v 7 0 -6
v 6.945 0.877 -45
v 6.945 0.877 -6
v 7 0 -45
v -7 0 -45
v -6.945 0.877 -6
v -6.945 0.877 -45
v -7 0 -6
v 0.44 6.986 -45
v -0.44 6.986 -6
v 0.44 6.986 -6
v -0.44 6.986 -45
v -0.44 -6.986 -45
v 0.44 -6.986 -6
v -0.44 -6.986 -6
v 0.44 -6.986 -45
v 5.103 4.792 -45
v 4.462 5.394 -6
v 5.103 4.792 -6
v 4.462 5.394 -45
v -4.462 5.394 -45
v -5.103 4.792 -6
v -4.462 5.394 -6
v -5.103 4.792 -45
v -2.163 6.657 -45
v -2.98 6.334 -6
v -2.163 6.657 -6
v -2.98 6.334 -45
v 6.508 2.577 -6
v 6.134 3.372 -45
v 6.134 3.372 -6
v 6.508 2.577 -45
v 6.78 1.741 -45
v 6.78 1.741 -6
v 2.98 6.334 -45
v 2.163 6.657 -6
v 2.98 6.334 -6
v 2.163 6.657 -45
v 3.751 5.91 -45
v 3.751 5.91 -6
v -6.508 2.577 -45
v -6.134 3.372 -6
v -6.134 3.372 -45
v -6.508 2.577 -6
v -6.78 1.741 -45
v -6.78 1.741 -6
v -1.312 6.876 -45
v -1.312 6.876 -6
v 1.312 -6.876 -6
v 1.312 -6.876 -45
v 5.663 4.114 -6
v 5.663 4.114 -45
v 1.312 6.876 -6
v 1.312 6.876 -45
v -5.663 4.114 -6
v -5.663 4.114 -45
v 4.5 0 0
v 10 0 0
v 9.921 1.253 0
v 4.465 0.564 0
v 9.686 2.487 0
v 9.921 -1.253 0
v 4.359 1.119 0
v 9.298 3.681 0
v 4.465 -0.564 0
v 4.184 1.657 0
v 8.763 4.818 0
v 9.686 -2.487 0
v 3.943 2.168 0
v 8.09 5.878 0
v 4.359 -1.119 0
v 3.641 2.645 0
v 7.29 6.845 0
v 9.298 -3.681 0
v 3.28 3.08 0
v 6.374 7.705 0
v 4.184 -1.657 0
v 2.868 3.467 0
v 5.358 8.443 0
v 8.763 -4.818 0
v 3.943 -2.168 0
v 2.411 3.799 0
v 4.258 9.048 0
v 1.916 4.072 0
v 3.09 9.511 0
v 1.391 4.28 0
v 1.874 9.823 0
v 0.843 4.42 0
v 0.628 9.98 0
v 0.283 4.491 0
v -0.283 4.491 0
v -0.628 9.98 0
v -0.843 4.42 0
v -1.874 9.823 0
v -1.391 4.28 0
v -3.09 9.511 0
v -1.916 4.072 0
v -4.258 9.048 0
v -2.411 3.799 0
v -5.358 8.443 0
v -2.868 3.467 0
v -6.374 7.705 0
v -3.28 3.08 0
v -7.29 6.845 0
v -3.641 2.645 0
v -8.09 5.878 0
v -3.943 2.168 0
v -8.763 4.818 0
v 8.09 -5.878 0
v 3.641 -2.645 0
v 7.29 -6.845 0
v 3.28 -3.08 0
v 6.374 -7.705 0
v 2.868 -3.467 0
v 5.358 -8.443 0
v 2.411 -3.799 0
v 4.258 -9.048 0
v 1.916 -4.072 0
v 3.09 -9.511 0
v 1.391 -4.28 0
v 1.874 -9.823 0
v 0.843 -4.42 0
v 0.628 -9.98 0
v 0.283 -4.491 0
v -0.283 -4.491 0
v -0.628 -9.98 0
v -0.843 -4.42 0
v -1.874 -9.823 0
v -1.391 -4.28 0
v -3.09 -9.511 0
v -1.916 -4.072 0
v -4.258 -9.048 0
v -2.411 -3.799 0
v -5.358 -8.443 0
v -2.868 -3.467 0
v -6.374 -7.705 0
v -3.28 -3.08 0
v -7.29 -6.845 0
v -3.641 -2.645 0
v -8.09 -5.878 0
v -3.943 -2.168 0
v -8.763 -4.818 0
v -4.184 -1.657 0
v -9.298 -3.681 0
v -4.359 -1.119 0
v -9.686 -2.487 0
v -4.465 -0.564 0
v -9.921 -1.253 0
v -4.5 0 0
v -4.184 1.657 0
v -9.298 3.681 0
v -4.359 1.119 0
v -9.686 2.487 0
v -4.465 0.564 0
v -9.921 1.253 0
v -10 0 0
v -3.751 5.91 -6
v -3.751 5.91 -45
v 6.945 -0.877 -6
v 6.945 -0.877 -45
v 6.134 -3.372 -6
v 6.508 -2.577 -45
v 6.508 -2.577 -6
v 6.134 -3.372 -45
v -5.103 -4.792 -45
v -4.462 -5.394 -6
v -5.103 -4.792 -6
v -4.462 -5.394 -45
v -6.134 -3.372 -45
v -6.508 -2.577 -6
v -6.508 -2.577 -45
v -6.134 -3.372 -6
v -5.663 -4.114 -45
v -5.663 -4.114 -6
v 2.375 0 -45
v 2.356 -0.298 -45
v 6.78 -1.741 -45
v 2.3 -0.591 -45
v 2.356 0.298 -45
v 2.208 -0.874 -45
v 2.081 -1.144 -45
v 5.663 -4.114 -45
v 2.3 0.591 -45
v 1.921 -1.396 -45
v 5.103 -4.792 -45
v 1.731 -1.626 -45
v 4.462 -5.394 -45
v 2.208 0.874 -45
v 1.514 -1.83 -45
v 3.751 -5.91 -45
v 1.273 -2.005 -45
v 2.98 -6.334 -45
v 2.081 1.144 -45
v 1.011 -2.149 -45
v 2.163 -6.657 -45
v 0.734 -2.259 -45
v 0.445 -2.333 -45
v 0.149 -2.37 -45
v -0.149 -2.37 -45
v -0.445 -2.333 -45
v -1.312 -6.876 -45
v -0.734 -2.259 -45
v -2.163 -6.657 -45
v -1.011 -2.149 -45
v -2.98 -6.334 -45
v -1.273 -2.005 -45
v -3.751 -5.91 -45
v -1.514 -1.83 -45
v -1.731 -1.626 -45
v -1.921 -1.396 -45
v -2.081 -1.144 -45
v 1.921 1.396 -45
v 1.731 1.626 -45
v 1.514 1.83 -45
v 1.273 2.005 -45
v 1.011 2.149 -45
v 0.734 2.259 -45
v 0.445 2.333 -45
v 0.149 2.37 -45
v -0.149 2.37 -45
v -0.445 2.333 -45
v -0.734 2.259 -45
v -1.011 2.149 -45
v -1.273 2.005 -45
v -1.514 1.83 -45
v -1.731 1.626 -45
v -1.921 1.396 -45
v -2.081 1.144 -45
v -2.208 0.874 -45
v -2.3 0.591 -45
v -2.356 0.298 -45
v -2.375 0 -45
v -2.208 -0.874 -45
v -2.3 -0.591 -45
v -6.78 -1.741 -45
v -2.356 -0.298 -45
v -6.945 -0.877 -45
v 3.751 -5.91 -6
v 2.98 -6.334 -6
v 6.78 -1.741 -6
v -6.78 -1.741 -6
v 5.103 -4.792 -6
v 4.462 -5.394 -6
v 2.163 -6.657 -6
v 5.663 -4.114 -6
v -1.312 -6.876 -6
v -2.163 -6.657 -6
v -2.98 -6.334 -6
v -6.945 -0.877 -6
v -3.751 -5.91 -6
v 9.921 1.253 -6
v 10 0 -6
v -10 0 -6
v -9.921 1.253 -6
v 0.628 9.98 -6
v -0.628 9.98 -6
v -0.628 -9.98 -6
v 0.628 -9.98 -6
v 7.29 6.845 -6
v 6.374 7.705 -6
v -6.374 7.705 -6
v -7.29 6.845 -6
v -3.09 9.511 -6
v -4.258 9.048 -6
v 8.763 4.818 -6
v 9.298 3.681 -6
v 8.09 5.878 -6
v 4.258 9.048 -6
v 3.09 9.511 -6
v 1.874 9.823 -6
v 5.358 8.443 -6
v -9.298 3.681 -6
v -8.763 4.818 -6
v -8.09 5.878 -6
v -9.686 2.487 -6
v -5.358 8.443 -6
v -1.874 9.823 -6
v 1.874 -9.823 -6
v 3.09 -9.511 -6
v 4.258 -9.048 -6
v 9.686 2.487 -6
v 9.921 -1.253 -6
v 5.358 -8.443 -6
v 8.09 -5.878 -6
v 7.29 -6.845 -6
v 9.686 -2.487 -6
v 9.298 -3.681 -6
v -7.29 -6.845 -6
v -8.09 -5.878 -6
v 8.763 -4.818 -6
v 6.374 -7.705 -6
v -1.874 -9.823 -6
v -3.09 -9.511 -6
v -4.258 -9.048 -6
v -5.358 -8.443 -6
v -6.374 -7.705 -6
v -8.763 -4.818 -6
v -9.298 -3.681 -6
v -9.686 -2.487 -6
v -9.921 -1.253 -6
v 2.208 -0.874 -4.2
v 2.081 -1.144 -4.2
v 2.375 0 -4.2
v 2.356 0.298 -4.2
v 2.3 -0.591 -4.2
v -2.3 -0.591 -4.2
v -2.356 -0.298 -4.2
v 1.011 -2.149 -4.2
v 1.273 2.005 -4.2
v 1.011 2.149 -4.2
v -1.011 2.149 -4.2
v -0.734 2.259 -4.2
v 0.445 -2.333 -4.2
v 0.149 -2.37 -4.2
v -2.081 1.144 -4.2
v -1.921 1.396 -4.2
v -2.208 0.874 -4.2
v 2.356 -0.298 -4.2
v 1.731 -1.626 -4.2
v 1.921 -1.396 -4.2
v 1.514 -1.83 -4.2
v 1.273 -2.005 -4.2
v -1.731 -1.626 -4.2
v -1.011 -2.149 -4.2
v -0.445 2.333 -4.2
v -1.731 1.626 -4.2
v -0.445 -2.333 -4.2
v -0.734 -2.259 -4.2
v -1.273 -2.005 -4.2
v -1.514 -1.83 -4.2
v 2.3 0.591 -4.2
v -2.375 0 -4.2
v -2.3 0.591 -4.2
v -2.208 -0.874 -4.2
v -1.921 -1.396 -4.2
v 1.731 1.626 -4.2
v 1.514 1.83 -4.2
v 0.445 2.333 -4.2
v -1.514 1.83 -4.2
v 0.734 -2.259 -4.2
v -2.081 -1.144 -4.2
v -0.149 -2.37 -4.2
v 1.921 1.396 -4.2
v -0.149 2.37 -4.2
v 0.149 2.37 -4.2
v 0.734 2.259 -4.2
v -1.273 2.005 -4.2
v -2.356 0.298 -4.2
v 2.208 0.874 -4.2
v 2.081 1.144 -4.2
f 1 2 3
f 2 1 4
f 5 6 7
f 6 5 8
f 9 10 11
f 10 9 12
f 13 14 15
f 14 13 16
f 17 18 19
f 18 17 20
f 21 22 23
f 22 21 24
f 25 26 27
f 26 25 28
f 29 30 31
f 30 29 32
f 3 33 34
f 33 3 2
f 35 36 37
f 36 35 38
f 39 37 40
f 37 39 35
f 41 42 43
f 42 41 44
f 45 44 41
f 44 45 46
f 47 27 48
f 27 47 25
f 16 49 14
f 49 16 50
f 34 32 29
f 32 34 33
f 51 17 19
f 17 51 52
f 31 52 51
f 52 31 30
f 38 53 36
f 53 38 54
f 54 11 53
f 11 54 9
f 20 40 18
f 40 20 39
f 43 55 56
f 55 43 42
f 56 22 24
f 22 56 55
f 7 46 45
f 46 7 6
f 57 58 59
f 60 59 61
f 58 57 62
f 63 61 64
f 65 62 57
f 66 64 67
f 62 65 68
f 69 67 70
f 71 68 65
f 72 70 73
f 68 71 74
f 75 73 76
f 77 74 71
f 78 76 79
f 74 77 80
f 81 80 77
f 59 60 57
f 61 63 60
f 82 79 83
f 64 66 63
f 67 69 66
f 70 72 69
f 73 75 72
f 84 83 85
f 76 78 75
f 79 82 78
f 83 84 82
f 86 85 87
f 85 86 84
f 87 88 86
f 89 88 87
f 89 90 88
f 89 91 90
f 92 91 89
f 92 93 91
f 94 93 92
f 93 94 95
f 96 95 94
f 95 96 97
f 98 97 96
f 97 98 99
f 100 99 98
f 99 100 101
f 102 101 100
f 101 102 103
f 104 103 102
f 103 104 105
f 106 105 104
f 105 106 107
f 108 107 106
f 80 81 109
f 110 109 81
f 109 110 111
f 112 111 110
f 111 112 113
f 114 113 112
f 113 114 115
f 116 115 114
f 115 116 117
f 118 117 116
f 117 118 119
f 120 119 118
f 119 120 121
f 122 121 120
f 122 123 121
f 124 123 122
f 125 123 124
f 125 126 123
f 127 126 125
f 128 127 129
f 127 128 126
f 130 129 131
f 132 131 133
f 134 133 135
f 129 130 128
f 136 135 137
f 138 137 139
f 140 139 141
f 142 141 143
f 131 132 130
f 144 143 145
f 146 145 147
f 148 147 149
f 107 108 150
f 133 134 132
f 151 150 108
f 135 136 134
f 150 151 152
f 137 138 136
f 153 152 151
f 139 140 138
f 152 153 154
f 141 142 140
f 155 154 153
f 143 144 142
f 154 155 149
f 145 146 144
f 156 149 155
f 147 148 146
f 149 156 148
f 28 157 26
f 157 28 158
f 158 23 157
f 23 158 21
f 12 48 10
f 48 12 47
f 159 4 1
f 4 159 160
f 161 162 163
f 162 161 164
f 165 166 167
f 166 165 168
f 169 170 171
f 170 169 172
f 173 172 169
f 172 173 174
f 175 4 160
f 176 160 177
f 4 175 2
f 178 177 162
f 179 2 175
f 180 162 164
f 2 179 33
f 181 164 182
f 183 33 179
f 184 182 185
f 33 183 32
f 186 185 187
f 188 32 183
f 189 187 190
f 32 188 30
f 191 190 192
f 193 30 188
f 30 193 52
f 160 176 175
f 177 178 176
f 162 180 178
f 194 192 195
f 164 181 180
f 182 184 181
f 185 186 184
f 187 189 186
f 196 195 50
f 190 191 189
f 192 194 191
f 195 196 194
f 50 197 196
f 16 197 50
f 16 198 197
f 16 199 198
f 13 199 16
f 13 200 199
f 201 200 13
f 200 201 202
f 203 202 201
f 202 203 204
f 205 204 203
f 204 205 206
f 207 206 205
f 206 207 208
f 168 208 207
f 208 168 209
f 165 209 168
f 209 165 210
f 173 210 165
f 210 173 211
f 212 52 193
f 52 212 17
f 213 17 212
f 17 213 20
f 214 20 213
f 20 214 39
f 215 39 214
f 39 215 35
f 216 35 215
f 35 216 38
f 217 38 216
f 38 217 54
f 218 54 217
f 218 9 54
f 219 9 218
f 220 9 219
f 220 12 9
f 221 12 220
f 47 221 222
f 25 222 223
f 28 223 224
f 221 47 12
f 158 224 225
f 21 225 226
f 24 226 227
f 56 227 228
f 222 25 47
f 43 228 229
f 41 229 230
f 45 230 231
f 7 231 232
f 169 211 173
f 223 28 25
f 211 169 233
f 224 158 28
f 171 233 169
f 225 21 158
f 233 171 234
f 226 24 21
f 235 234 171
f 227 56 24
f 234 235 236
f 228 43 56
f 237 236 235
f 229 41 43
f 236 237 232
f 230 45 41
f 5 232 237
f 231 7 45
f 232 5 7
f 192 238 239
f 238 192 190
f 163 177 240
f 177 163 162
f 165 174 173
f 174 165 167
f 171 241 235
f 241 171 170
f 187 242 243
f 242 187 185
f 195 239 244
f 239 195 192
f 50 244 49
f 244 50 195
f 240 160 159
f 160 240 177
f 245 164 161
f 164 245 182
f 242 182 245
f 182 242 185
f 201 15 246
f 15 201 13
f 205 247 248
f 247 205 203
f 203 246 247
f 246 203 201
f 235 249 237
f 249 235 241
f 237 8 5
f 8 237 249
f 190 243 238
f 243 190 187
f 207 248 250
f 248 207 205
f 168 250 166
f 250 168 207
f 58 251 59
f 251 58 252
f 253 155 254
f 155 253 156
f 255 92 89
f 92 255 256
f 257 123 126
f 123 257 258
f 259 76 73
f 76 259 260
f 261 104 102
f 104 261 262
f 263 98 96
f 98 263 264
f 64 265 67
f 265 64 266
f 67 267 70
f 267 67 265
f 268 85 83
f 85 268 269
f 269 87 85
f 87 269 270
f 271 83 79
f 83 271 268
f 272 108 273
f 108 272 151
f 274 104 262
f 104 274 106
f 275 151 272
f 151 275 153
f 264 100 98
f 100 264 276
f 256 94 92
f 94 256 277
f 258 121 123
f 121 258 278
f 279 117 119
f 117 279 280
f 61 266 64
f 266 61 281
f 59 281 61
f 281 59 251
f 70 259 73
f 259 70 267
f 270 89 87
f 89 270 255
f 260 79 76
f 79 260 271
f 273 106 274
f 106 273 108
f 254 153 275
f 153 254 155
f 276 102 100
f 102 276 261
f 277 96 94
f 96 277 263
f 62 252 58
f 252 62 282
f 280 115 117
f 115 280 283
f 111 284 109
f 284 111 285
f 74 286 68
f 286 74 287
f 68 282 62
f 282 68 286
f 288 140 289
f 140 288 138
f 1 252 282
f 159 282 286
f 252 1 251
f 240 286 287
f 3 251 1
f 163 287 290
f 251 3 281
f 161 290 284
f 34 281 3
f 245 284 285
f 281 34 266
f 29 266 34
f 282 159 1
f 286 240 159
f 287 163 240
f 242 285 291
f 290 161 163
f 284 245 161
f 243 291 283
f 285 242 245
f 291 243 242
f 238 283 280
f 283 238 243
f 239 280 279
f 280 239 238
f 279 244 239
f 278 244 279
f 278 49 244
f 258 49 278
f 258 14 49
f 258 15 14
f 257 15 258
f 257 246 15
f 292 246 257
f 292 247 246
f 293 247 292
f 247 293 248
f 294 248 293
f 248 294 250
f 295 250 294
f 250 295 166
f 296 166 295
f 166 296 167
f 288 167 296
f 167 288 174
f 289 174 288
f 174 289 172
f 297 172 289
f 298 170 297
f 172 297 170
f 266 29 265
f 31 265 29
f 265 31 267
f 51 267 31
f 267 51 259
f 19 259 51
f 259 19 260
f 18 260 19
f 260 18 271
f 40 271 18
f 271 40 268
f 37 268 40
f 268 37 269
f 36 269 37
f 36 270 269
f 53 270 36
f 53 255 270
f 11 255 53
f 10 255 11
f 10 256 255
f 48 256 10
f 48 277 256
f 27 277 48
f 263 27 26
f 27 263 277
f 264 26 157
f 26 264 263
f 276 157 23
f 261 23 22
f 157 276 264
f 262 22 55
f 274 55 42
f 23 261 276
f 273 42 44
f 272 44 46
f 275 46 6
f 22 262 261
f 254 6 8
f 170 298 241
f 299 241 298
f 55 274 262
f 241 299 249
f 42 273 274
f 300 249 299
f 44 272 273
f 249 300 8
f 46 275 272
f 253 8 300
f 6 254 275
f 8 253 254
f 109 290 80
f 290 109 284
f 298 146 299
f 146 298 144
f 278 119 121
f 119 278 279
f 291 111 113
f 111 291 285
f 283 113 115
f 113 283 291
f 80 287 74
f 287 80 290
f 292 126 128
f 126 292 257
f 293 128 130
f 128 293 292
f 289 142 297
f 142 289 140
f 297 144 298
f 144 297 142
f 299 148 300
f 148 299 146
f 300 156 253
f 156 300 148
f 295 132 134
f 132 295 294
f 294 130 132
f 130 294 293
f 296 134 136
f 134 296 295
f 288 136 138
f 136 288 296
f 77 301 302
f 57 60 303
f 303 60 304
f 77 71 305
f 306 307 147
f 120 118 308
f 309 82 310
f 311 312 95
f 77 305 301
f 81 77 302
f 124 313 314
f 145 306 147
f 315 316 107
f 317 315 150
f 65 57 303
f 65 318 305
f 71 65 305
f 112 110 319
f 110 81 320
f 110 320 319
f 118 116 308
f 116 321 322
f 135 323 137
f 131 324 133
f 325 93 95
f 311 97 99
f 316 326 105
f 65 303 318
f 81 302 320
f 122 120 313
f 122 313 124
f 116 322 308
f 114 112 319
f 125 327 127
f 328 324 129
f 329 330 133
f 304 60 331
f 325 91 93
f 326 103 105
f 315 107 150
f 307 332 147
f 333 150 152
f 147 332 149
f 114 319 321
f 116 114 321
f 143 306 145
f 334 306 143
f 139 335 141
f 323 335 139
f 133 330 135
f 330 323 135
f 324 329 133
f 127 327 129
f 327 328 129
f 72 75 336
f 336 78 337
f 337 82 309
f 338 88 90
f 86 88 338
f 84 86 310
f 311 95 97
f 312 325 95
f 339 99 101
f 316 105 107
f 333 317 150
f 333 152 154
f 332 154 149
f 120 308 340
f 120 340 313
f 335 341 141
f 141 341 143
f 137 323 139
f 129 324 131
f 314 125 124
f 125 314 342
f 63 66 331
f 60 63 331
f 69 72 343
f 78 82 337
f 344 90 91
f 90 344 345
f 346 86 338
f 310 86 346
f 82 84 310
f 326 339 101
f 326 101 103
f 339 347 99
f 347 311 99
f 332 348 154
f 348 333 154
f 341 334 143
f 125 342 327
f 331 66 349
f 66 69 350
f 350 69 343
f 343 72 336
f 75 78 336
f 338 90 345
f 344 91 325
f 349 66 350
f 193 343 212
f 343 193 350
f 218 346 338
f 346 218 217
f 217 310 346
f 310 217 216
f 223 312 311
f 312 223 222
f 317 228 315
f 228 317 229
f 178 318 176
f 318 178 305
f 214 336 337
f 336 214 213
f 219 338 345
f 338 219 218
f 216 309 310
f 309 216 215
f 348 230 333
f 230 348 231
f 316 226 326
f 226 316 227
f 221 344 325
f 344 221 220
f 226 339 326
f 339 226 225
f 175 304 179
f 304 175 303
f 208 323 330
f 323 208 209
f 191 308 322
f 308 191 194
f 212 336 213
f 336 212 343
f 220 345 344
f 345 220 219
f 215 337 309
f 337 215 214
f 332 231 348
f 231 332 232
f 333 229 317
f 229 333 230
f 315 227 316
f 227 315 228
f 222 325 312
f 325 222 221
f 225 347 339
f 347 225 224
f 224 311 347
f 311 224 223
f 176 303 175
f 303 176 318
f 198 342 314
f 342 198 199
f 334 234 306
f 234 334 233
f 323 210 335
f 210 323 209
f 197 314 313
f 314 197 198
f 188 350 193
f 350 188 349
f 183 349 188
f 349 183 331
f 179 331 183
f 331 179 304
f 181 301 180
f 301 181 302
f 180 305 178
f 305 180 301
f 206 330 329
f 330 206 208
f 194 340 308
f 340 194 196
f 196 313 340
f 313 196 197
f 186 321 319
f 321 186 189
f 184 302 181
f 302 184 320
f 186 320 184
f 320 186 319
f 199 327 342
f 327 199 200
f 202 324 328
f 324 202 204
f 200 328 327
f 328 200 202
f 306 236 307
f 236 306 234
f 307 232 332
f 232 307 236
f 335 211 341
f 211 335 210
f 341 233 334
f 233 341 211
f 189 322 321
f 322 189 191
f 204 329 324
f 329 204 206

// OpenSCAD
$fn = 50;


difference() {
	union() {
		translate(v = [0, 0, -45.0000000000]) {
			cylinder(h = 45, r = 7.0000000000);
		}
		translate(v = [0, 0, -6.0000000000]) {
			cylinder(h = 6, r = 10.0000000000);
		}
	}
	union() {
		translate(v = [0, 0, 0]) {
			rotate(a = [0, 0, 0]) {
				difference() {
					union() {
						#translate(v = [0, 0, -45.0000000000]) {
							cylinder(h = 45, r = 2.2500000000);
						}
						#translate(v = [0, 0, -4.2000000000]) {
							cylinder(h = 4.2000000000, r = 7.0000000000, r1 = 2.3750000000, r2 = 4.5000000000);
						}
						#translate(v = [0, 0, -45.0000000000]) {
							cylinder(h = 45, r = 2.3750000000);
						}
						#translate(v = [0, 0, -45.0000000000]) {
							cylinder(h = 45, r = 2.2500000000);
						}
					}
					union();
				}
			}
		}
	}
}
